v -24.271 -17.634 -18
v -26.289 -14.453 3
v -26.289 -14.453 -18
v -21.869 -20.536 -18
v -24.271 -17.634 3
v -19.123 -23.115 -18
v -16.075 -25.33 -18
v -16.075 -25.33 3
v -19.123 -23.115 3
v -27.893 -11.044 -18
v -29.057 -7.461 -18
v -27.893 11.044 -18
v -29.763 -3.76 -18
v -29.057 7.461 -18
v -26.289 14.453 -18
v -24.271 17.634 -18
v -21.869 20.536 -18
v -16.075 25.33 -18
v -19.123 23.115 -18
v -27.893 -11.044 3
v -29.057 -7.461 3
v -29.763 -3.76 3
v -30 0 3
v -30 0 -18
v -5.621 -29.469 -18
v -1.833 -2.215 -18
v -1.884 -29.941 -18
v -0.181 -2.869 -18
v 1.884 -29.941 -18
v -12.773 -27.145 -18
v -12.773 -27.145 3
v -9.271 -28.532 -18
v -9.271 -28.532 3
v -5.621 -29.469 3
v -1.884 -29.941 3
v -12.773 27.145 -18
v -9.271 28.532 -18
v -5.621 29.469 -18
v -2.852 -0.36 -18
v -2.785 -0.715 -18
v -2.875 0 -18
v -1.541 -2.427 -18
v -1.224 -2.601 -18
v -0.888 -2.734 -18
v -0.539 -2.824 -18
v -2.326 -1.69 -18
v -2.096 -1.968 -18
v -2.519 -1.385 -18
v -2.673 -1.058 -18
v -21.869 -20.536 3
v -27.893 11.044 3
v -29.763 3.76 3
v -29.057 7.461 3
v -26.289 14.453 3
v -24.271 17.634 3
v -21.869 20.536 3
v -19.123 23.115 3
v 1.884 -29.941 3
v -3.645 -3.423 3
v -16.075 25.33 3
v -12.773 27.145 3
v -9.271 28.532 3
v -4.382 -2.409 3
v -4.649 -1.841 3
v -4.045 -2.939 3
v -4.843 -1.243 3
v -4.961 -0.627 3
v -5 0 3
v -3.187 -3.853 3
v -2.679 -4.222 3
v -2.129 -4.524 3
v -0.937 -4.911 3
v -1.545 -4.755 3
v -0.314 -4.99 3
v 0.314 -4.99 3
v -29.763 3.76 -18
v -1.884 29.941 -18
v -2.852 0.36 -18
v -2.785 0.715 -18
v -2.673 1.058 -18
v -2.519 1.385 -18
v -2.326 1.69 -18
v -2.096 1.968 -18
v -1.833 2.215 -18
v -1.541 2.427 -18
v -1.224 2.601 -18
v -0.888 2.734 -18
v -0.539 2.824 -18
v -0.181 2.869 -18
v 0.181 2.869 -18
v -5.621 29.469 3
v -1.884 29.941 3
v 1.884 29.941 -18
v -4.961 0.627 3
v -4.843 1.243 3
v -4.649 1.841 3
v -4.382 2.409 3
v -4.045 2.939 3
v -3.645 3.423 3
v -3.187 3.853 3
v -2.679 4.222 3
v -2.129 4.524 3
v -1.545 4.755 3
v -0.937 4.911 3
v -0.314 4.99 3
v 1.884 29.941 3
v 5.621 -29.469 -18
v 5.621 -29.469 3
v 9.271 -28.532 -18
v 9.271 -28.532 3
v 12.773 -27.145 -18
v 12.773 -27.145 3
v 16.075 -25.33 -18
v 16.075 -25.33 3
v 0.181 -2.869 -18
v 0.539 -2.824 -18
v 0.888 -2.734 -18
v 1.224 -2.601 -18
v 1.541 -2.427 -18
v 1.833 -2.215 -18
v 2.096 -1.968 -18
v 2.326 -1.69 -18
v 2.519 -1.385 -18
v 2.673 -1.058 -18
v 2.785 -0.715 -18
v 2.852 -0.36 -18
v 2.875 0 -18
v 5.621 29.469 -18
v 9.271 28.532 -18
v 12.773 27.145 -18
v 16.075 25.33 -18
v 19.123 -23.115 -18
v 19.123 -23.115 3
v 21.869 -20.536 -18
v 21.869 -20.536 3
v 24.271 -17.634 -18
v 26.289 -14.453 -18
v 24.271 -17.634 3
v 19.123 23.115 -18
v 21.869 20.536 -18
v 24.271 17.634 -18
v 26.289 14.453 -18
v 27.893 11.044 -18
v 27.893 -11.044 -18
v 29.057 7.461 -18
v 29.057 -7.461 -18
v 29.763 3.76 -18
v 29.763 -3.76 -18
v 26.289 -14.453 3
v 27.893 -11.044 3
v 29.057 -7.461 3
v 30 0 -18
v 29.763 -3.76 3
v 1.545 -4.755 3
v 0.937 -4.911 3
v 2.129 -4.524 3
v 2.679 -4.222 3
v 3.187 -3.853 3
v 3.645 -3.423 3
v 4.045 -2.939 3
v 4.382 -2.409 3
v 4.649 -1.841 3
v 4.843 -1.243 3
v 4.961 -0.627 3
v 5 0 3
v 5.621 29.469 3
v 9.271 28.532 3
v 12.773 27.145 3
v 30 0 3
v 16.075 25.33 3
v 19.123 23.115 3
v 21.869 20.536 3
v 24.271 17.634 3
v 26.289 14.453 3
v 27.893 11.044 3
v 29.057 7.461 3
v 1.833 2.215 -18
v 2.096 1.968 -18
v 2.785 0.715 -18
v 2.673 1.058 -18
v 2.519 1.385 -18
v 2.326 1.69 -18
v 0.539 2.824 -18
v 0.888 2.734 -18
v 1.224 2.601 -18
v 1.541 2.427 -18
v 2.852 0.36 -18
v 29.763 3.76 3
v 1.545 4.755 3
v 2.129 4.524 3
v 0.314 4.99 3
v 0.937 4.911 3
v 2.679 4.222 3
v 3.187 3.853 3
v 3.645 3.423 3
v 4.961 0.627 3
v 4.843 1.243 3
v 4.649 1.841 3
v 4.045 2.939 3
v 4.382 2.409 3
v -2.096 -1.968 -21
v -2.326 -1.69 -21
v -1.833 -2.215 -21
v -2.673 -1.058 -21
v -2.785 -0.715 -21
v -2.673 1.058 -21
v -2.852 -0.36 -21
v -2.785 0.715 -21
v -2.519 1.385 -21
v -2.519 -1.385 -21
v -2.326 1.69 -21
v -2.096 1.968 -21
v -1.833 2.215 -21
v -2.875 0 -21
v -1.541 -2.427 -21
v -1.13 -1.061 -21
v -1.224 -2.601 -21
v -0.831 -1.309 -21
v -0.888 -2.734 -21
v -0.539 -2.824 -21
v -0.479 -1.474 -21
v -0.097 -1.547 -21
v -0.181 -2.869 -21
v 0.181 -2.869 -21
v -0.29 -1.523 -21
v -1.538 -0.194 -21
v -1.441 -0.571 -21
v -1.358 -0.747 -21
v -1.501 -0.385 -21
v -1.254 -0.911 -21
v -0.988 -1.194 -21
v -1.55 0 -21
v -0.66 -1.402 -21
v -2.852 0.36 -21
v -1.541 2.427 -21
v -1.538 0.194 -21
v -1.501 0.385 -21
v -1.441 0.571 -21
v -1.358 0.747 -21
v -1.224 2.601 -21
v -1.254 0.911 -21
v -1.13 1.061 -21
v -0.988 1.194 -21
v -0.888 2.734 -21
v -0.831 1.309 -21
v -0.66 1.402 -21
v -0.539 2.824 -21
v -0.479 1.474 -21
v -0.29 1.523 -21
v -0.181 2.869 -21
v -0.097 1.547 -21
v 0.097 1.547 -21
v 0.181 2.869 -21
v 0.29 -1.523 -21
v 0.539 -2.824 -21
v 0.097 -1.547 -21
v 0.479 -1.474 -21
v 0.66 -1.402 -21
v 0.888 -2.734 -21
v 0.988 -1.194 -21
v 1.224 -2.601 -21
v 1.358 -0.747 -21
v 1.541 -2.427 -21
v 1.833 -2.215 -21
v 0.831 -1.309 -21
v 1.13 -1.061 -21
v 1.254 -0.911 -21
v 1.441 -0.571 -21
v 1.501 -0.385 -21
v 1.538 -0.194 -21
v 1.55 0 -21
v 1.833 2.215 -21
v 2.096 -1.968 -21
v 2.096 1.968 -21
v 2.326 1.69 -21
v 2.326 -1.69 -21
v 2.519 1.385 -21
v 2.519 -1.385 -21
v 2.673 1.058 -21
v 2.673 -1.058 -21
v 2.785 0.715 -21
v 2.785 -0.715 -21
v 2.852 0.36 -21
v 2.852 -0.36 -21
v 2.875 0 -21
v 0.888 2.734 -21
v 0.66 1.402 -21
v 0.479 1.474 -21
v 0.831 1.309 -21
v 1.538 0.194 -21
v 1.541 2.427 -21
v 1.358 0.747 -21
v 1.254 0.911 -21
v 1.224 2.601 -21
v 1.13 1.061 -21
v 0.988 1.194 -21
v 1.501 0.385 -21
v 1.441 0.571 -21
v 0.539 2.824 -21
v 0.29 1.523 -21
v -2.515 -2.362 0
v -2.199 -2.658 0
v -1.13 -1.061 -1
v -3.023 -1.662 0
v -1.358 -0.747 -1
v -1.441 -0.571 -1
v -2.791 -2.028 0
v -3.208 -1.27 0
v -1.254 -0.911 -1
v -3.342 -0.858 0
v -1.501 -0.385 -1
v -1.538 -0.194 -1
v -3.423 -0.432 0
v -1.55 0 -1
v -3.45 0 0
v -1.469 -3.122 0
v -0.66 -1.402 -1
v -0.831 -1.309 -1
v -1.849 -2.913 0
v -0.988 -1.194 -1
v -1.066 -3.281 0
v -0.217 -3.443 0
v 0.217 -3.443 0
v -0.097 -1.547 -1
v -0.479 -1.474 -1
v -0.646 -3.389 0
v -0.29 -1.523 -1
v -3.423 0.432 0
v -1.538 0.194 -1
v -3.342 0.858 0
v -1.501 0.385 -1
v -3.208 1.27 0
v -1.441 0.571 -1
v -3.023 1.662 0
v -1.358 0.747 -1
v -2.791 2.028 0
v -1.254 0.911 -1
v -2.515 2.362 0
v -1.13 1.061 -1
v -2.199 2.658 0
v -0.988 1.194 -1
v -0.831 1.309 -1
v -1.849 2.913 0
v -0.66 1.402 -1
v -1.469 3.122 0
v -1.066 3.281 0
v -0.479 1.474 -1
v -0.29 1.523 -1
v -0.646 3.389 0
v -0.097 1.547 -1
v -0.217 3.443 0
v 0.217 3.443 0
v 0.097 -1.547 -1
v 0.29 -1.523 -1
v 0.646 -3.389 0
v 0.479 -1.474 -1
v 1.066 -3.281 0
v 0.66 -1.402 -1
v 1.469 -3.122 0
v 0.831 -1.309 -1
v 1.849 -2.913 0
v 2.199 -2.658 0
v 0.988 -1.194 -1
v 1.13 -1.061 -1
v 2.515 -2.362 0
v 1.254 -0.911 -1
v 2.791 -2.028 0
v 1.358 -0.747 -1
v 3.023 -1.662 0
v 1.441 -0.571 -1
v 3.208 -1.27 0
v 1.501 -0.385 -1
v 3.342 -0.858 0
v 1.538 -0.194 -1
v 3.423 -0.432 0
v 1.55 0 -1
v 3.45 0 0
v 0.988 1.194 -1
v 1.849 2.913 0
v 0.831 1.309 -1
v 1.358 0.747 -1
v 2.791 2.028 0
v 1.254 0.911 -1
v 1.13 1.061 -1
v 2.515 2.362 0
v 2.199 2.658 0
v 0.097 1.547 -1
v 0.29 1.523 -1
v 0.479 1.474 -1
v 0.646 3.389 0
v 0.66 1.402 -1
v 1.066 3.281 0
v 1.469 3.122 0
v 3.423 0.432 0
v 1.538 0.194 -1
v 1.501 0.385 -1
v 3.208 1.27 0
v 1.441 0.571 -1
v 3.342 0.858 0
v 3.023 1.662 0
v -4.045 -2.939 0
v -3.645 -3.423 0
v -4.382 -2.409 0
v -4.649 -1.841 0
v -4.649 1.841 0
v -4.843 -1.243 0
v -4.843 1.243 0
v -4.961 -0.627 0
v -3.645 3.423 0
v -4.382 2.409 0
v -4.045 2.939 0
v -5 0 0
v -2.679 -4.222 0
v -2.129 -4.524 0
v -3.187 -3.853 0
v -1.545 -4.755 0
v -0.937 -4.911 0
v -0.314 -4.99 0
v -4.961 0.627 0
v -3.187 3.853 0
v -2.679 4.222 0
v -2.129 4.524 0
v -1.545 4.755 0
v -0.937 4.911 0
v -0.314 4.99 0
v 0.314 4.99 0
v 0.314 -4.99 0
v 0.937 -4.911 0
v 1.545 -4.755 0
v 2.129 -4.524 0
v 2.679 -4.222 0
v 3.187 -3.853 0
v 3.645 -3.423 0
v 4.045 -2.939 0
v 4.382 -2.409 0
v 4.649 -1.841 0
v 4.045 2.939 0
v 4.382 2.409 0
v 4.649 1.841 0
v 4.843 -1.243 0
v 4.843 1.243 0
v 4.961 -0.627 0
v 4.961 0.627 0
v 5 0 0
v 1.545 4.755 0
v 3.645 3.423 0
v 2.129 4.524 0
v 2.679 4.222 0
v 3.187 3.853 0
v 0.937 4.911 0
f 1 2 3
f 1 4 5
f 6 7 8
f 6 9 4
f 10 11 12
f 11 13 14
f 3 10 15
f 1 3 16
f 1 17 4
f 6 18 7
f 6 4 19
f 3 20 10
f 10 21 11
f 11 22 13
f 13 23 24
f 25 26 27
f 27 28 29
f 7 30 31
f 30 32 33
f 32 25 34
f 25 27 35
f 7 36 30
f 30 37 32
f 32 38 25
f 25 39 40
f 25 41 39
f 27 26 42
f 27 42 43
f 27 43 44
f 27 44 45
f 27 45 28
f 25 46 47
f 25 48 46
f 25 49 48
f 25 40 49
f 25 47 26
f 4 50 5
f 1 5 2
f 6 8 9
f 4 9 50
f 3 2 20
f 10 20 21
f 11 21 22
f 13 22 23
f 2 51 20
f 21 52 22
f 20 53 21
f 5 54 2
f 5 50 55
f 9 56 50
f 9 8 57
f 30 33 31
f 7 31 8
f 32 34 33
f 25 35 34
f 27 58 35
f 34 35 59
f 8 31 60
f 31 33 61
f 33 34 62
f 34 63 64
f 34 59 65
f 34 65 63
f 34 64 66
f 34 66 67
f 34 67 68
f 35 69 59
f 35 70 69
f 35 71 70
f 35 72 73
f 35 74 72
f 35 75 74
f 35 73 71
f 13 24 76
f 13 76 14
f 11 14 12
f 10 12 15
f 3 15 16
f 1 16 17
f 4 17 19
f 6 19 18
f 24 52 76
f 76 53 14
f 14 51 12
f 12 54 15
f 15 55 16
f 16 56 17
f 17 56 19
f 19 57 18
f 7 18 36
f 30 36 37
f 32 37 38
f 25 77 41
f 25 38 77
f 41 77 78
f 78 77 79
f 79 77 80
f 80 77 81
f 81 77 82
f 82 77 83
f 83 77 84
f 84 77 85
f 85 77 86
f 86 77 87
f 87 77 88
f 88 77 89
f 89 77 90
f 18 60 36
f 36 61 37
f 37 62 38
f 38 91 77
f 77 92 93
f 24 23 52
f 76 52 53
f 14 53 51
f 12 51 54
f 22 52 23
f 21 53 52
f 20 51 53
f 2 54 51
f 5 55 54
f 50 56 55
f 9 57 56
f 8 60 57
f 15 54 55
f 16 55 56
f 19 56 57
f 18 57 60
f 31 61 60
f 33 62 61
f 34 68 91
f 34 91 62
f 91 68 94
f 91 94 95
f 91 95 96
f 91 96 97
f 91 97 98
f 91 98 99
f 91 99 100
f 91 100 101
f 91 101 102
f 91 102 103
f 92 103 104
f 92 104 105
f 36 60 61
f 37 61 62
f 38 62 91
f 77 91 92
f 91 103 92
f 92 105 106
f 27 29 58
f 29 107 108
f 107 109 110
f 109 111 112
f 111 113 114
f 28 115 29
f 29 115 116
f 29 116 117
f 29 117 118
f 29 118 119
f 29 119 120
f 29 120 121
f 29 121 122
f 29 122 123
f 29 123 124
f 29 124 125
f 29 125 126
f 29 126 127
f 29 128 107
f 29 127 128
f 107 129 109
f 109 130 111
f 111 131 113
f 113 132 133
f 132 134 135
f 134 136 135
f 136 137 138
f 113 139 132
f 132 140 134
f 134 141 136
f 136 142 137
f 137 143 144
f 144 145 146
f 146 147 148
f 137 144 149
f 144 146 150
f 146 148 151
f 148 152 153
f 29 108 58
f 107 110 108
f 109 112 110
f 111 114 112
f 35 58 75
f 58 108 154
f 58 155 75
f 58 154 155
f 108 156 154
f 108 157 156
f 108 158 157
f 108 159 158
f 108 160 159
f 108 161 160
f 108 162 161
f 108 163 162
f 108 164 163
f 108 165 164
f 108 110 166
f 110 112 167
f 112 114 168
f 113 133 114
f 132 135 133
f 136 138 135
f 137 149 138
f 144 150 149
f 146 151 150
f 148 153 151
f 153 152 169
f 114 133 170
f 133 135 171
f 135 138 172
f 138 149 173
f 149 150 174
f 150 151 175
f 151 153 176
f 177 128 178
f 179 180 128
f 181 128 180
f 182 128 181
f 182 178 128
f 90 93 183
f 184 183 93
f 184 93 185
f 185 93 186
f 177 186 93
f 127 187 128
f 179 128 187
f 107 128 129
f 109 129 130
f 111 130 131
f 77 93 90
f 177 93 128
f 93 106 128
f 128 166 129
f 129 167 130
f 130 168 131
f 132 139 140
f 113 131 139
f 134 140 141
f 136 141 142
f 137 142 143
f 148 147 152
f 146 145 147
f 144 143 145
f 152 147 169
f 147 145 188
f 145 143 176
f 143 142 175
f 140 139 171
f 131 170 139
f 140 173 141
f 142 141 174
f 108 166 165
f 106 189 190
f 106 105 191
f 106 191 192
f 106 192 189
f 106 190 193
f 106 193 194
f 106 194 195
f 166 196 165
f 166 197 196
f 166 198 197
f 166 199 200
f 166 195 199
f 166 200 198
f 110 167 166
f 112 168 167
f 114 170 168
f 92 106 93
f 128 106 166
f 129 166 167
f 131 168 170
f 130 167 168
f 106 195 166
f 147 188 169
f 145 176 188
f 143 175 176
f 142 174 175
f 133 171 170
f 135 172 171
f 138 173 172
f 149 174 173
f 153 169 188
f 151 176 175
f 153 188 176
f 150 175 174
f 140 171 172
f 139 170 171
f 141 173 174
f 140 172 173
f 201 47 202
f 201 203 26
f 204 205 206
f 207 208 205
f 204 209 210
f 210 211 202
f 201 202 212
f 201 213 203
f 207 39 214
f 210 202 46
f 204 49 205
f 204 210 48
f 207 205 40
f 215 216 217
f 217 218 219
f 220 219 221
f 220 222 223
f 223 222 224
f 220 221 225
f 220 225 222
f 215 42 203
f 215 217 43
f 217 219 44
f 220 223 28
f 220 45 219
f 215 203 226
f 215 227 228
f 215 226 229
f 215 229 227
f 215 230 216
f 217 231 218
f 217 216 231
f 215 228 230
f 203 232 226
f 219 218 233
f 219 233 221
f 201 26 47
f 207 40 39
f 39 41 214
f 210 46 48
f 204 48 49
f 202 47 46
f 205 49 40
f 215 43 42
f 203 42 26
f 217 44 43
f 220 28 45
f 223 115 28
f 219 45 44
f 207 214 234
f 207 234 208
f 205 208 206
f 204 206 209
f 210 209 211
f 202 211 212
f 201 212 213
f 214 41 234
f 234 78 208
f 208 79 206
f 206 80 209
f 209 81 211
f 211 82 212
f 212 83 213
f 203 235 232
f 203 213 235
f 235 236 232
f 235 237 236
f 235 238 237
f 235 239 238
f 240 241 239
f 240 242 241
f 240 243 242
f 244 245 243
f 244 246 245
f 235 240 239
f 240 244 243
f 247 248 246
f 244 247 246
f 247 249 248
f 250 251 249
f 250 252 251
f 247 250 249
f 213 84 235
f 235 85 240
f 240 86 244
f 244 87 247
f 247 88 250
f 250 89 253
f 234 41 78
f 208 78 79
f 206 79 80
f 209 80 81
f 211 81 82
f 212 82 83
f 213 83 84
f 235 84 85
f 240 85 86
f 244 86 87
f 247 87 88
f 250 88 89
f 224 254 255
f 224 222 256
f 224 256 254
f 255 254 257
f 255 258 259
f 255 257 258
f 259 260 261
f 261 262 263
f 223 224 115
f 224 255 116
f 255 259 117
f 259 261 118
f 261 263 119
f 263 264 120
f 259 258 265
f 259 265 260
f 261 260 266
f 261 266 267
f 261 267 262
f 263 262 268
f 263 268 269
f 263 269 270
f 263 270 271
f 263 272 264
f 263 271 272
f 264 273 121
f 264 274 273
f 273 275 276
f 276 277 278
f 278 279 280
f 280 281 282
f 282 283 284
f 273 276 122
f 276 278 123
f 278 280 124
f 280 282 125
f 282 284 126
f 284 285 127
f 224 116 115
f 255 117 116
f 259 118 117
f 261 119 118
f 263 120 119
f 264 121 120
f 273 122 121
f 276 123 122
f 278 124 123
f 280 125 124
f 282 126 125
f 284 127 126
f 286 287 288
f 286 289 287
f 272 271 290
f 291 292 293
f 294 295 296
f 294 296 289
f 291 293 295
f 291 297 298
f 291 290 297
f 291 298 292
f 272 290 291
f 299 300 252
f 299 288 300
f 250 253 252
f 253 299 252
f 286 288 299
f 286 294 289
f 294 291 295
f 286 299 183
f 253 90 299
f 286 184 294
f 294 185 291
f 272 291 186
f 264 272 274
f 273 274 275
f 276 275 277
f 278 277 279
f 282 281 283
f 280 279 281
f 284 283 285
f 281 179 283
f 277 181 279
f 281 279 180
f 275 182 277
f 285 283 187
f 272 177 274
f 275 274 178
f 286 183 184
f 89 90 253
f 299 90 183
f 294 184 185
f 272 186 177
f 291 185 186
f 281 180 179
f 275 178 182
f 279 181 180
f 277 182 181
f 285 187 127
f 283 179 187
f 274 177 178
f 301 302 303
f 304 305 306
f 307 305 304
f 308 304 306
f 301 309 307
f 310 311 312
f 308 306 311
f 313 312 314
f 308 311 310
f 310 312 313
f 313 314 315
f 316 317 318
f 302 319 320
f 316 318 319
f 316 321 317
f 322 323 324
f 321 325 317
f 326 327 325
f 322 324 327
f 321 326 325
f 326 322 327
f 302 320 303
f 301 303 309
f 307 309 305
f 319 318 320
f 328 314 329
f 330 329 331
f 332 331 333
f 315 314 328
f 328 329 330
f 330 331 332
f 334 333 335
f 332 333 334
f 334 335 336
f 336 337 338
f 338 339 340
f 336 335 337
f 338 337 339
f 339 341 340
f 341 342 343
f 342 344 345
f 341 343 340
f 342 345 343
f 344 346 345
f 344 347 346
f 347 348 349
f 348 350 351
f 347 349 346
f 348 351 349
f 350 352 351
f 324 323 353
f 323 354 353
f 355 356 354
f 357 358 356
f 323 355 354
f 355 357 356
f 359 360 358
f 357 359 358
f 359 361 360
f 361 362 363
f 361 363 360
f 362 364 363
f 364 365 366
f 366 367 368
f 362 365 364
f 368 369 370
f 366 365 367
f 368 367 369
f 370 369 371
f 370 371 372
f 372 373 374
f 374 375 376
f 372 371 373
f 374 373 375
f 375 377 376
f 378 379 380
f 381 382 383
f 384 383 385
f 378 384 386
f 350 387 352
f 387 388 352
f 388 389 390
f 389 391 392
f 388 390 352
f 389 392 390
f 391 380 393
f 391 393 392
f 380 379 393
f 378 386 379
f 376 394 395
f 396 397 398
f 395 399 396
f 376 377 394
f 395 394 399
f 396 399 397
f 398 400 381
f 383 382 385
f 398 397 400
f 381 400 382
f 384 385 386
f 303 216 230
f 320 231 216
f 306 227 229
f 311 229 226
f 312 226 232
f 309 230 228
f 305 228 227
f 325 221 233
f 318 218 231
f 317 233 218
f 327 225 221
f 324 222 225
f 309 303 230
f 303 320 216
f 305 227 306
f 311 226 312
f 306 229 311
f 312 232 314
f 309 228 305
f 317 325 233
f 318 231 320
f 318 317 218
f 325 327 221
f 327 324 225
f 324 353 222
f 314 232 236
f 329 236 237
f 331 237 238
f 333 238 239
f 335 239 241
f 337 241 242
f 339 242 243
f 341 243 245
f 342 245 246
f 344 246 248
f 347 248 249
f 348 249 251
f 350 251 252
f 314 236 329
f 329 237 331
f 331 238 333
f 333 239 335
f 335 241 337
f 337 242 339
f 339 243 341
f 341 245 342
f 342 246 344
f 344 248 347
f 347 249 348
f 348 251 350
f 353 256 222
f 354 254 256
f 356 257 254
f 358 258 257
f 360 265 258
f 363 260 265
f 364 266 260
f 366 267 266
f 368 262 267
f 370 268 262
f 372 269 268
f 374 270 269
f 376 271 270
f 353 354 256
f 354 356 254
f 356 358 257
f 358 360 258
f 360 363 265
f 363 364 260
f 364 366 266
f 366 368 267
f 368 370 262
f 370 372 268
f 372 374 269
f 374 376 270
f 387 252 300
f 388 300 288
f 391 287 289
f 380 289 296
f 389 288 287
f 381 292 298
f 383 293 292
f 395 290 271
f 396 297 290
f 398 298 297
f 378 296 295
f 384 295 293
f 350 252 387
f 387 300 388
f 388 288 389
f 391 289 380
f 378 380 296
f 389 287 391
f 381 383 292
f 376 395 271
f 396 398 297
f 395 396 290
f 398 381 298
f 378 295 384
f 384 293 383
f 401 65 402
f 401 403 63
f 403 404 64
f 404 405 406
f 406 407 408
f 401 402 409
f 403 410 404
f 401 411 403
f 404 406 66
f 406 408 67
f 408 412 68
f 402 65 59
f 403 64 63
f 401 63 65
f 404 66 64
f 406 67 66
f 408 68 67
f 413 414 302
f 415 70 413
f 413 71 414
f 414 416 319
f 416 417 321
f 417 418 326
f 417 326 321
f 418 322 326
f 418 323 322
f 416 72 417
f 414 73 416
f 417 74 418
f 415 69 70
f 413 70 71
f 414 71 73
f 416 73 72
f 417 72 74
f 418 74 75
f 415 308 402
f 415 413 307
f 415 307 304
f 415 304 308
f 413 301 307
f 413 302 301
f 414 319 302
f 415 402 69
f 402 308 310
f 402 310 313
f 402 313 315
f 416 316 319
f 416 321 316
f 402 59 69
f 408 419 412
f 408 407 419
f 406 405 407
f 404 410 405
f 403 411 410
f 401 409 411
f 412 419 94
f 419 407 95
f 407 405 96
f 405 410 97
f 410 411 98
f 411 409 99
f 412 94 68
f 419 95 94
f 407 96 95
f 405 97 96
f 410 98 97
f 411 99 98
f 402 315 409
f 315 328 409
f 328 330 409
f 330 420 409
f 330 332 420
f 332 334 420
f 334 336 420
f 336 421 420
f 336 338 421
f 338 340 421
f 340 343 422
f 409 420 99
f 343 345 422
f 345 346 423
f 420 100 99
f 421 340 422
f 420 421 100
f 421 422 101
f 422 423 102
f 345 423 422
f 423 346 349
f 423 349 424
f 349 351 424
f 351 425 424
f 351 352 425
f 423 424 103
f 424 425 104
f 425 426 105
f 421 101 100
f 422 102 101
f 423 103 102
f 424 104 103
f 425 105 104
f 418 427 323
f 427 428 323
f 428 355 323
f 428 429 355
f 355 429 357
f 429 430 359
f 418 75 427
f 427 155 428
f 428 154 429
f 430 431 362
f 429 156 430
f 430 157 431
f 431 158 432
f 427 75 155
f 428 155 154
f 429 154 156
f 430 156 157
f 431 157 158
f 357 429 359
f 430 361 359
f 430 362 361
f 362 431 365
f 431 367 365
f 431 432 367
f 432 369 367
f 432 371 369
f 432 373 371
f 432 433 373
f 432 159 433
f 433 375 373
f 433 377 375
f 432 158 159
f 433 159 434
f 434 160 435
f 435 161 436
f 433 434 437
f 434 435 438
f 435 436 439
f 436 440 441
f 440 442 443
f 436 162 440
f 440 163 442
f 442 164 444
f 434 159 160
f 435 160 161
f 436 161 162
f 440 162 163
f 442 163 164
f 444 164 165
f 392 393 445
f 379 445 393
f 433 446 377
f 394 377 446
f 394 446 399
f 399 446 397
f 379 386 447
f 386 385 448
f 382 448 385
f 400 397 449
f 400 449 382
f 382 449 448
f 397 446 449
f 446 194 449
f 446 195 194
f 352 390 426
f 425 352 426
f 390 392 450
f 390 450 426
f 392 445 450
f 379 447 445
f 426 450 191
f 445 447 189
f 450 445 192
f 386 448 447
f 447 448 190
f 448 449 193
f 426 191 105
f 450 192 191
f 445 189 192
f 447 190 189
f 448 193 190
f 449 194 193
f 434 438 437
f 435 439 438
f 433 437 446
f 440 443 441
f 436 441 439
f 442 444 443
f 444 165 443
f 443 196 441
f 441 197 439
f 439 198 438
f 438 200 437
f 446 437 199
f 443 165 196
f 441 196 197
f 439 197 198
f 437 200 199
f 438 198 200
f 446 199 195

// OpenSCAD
$fn = 50;

difference() {
	union() {
		translate(v = [0, 0, -18.0]) {
			cylinder(h = 21, r = 30.0);
		}
		#translate(v = [0, 0, -21.0]) {
			cylinder(h = 21, r = 2.875);
		}
	}
	union() {
		translate(v = [0, 0, 0]) {
			rotate(a = [0, 0, 0]) {
				difference() {
					union() {
						translate(v = [0, 0, -21.0]) {
							cylinder(h = 21, r = 1.25);
						}
						translate(v = [0, 0, -1.0]) {
							cylinder(h = 1.0, r1 = 1.55, r2 = 3.45);
						}
						translate(v = [0, 0, -21.0]) {
							cylinder(h = 21, r = 1.55);
						}
						translate(v = [0, 0, -21.0]) {
							cylinder(h = 21, r = 1.25);
						}
					}
					union();
				}
			}
		}
		#cylinder(h = 3, r = 5.0);
	}
}
